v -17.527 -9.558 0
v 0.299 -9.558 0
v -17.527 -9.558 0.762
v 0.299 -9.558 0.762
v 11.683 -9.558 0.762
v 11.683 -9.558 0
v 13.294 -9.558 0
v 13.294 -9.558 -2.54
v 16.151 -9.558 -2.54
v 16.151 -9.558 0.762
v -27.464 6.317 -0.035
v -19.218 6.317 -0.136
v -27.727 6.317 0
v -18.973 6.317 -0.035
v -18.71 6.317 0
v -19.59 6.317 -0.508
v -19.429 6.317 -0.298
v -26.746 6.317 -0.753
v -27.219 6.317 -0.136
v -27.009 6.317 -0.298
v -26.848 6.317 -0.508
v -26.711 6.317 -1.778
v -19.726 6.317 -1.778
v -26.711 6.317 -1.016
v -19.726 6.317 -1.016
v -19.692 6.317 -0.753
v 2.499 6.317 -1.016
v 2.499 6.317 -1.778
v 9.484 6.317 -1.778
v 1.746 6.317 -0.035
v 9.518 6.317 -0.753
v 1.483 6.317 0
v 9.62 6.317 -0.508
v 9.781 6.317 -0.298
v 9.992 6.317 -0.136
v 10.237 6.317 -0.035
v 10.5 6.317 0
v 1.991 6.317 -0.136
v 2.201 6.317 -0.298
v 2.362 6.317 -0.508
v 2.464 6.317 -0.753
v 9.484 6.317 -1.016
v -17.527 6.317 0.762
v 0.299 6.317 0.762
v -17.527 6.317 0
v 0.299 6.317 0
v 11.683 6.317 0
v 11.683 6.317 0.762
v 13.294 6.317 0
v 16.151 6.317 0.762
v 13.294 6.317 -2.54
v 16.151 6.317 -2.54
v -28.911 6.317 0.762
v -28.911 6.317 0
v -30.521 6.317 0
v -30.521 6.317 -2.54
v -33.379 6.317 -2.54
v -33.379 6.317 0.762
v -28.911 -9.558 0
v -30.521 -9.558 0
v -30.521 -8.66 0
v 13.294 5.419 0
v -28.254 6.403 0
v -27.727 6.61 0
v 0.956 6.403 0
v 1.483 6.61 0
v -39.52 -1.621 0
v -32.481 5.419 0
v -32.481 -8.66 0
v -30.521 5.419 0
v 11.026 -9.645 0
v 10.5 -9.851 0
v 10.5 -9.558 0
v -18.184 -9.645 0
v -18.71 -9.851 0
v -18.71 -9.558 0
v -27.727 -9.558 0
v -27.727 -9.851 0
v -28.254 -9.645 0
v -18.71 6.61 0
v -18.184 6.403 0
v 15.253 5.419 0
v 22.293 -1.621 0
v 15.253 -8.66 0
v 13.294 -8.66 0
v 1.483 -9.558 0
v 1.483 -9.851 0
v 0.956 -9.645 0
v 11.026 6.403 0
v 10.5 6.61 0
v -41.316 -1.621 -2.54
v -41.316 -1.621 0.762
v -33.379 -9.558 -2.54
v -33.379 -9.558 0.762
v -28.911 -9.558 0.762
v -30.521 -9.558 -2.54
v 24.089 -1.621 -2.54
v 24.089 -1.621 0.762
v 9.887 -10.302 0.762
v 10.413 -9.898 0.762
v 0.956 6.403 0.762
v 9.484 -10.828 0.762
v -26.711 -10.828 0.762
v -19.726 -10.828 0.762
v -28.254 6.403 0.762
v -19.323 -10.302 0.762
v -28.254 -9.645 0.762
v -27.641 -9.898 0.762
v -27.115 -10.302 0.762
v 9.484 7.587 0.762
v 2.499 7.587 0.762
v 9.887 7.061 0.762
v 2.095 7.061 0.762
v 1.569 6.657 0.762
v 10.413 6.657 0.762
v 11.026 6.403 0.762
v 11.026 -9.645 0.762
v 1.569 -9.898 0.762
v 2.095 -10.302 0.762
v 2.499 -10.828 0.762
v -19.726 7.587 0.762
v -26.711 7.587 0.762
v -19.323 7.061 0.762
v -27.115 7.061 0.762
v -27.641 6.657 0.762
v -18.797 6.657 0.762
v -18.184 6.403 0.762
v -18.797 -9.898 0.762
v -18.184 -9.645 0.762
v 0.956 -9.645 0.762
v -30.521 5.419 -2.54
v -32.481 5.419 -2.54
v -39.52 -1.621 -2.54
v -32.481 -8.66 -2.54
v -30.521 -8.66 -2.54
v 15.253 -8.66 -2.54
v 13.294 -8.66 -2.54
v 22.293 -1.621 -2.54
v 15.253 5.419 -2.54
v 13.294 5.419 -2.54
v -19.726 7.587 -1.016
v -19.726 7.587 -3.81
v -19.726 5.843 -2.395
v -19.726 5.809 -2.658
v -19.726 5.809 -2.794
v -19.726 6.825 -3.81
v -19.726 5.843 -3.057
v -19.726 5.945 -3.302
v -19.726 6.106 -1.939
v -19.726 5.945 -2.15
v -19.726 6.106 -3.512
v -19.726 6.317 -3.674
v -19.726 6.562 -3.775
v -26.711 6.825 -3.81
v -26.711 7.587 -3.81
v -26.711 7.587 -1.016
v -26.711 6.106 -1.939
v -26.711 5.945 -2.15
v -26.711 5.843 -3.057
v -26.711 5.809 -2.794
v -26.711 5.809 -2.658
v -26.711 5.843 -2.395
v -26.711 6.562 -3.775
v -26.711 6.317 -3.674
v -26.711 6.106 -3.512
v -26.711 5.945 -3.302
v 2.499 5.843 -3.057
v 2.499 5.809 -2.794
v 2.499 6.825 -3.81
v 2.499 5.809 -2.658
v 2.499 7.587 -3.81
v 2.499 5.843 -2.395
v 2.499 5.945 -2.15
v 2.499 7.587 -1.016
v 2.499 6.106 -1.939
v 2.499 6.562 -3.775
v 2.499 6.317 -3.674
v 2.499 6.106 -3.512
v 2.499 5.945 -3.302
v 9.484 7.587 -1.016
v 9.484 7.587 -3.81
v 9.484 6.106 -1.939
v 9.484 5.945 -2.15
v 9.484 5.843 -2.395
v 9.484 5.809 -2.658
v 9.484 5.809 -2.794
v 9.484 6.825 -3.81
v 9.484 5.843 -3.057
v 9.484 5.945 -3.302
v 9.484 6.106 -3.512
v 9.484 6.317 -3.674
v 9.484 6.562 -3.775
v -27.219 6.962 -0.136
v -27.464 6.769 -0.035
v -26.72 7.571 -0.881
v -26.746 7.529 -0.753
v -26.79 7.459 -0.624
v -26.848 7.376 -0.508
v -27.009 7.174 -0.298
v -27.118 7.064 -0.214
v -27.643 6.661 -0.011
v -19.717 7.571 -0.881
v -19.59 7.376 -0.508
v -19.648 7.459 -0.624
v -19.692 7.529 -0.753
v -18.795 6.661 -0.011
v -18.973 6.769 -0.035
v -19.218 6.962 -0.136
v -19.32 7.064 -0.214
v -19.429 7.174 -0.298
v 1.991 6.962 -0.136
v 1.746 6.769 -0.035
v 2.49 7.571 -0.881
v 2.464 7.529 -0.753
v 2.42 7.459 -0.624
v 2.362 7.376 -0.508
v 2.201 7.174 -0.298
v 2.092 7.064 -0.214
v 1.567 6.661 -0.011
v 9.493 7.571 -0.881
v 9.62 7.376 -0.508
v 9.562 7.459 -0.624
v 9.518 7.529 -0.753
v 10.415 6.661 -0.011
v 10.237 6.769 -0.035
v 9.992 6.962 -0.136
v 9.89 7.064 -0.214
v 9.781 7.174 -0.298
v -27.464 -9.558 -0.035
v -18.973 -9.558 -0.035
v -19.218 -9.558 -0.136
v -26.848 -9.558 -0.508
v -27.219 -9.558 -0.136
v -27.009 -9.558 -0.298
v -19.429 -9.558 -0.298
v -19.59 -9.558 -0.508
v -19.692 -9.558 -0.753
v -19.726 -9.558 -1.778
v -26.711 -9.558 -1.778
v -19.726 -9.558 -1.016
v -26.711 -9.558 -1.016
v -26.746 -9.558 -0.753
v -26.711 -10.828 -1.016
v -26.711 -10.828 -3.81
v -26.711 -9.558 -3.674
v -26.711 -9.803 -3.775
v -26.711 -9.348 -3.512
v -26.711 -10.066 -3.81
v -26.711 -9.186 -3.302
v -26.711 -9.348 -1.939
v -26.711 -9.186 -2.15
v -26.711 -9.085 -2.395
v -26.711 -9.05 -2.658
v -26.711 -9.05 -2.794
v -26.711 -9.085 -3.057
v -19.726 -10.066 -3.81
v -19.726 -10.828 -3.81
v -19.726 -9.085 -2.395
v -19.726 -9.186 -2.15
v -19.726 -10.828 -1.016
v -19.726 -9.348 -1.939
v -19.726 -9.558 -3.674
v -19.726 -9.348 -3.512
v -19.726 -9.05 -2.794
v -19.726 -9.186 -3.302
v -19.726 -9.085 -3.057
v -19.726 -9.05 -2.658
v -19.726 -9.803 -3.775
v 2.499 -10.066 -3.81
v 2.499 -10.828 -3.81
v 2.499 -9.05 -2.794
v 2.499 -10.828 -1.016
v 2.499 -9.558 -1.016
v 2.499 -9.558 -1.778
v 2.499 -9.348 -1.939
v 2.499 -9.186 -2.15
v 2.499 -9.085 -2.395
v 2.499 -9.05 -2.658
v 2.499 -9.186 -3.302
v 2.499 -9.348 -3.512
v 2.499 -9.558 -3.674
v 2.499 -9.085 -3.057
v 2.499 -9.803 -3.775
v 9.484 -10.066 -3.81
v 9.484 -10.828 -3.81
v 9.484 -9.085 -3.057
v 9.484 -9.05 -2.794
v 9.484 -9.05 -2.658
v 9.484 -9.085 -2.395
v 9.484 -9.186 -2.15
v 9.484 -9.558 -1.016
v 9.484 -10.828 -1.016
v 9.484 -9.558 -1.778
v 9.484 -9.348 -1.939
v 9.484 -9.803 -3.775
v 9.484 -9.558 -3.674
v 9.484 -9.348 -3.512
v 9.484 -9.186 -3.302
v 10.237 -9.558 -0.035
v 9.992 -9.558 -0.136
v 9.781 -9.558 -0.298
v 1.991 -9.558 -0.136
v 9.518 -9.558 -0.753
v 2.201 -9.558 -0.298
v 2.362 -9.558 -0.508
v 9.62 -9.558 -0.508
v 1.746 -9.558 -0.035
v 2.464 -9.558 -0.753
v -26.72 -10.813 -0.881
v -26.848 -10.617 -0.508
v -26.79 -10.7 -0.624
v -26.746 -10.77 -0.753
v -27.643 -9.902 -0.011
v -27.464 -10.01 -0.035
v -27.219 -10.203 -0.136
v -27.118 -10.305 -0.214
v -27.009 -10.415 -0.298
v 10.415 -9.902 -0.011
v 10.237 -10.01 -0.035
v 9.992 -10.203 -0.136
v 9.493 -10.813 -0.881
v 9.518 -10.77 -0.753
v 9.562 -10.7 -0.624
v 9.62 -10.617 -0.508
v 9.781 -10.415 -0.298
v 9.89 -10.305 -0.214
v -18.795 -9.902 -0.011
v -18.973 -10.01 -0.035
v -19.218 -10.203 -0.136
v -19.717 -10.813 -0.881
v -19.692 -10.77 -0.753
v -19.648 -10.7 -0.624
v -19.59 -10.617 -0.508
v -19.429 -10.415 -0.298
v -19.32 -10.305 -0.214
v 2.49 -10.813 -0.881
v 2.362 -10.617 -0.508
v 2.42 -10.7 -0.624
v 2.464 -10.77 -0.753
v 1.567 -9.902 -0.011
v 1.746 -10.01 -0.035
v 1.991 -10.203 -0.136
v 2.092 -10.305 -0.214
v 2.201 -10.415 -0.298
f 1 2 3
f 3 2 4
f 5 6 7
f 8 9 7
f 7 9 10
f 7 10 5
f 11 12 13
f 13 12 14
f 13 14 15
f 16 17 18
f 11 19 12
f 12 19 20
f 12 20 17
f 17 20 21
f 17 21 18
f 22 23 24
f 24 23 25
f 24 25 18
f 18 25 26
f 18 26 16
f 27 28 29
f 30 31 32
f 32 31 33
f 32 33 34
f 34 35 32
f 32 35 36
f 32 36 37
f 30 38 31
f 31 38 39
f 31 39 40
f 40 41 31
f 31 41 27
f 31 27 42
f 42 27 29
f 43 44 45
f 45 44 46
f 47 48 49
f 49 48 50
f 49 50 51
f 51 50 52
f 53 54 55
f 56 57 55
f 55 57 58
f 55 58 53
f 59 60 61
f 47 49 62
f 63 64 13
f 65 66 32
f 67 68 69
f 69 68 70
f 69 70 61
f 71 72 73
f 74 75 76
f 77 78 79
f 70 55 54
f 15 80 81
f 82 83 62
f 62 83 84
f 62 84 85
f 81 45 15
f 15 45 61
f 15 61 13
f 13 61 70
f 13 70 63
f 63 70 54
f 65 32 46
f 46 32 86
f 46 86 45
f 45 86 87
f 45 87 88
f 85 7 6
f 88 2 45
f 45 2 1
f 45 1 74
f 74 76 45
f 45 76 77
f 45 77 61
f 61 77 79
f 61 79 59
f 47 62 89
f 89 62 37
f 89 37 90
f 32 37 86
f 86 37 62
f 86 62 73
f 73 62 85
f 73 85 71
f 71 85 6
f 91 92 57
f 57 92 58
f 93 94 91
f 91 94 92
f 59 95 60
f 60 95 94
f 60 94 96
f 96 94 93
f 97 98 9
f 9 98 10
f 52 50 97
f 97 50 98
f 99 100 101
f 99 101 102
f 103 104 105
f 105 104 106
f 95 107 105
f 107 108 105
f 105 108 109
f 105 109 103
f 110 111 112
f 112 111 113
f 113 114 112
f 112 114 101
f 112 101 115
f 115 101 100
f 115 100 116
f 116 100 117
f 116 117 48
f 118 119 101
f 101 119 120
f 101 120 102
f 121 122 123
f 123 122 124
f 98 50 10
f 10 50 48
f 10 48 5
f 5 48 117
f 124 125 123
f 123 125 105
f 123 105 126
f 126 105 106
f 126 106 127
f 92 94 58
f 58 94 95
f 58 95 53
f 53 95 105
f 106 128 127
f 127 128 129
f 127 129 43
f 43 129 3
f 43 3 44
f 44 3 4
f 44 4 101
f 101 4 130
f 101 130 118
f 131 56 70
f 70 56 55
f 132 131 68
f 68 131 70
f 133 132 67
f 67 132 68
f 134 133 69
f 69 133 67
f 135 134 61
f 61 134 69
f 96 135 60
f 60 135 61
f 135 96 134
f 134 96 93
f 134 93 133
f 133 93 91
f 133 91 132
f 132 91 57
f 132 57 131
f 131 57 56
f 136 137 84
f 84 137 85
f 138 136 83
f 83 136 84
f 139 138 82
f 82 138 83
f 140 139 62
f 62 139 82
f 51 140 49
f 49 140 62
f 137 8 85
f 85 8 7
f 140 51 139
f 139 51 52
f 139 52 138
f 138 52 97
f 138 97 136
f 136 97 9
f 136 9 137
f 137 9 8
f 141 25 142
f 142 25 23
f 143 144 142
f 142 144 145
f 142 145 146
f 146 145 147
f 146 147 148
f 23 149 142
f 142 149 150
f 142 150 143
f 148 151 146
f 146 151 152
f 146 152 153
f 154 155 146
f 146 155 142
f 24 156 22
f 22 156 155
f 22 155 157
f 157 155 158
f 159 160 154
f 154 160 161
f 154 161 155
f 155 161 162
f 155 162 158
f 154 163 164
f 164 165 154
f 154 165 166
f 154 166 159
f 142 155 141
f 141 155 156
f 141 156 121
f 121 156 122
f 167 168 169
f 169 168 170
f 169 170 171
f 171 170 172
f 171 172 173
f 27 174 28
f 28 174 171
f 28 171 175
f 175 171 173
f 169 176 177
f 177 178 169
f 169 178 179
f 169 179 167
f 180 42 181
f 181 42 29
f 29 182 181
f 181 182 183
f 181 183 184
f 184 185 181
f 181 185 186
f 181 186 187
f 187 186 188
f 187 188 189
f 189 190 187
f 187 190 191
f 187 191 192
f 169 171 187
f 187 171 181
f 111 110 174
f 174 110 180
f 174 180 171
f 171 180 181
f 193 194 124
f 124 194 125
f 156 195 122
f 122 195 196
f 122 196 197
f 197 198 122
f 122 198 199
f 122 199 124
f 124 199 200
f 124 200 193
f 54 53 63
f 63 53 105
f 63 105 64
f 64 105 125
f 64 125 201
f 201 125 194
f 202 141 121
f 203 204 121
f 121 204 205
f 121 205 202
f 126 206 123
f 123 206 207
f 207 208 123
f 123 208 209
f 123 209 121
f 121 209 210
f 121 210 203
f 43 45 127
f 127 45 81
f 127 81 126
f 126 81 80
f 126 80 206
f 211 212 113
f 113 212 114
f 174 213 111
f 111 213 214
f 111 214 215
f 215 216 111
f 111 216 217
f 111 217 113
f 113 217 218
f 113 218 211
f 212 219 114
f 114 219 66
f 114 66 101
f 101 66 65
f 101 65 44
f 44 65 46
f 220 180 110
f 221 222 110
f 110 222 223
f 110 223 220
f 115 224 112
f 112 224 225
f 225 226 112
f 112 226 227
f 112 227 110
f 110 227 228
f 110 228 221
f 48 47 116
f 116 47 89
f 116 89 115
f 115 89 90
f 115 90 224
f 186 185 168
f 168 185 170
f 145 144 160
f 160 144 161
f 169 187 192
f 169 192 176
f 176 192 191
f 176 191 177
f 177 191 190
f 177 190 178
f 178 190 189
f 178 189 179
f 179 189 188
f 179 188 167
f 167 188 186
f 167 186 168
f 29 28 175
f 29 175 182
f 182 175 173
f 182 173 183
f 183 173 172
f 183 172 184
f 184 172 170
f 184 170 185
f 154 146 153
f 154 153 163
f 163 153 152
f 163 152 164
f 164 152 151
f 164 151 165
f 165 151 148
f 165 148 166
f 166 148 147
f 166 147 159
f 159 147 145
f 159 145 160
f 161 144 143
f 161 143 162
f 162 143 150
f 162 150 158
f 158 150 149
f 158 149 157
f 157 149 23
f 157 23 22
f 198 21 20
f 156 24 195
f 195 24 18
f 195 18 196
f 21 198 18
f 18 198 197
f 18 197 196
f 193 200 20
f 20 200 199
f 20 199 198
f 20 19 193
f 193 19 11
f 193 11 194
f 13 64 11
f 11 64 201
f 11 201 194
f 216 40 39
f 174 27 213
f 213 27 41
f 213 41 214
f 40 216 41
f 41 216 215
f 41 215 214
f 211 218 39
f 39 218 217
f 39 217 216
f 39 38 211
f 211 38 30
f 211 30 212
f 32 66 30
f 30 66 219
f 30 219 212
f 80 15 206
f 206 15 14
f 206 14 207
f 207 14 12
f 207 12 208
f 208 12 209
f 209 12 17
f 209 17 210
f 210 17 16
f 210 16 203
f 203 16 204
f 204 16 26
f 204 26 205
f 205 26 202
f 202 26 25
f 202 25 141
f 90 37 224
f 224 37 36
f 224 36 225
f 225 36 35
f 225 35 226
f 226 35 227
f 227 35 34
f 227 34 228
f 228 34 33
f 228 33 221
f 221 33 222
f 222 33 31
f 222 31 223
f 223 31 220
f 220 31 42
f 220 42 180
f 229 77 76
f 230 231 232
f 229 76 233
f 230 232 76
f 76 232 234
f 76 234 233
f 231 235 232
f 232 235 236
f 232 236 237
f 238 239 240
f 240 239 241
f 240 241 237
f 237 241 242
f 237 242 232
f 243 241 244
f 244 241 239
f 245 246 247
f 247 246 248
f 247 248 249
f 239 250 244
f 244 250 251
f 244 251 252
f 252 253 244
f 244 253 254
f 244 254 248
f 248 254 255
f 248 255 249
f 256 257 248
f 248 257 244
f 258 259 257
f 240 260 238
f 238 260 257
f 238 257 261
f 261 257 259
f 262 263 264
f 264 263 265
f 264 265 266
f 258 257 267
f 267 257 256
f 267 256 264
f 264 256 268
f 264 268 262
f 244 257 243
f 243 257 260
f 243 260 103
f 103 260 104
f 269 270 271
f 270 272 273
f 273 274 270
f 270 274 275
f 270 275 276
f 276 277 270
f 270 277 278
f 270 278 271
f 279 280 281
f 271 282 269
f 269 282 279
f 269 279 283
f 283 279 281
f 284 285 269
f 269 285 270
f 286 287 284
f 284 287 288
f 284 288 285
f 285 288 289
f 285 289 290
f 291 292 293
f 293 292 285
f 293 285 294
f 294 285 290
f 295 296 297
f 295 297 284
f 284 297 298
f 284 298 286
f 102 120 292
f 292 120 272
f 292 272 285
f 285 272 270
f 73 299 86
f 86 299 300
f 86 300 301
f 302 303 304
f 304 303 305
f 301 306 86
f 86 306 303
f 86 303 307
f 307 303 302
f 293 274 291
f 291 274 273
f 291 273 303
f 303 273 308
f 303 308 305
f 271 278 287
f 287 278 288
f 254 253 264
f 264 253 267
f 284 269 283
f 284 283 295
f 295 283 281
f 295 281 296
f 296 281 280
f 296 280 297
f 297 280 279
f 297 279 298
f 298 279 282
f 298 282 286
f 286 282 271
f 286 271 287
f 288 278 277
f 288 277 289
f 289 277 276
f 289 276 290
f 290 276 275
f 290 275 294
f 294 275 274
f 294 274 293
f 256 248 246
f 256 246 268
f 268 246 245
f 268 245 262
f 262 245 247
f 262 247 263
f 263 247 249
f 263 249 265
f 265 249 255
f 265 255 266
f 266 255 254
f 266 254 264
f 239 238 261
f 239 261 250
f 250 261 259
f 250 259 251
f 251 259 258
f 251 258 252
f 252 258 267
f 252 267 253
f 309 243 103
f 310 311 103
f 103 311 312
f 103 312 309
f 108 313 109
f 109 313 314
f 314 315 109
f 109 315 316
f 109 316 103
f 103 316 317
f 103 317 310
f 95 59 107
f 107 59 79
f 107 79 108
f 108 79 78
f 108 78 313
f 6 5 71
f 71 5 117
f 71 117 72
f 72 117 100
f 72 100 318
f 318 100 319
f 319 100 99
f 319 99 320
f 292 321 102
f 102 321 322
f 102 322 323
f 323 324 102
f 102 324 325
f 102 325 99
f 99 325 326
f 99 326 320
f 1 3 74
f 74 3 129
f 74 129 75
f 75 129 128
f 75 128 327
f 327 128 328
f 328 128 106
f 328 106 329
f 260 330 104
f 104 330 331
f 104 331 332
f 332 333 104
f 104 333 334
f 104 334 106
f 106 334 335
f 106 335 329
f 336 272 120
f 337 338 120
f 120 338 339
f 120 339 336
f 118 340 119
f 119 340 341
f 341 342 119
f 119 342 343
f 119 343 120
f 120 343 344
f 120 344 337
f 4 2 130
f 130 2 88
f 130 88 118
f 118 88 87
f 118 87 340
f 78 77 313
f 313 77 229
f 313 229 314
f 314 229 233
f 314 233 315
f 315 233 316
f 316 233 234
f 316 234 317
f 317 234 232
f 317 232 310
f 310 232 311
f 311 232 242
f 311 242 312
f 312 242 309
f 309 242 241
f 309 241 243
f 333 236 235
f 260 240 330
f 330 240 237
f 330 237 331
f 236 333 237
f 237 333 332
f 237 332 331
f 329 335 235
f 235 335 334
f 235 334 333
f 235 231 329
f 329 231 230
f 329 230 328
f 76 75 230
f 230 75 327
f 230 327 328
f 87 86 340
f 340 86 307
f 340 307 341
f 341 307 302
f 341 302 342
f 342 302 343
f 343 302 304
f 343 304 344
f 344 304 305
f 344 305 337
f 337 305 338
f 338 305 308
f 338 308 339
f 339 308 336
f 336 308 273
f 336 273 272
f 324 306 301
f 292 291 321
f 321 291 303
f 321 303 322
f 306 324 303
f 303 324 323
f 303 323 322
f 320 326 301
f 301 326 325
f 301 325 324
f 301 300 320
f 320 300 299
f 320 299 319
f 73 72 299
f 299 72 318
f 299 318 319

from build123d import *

# Parameters (mm, degrees)
BOSS_EXTRUDE1_DEPTH  = 0.762
BOSS_EXTRUDE2_DEPTH  = 2.54
SKETCH4_W            = 6.985
SKETCH4_H            = 4.572
BOSS_EXTRUDE3_DEPTH  = 1.27
FILLET1_R            = 2.54
SKETCH5_W            = 6.985
SKETCH5_H            = 2.032
BOSS_EXTRUDE4_DEPTH  = 0.508
FILLET2_R            = 1.016
FILLET3_R            = 1.016
FILLET2_OF_MIRROR4_R = 1.016
FILLET4_R            = 2.54
FILLET5_R            = 1.016


with BuildPart() as part:
    # Sketch1 → Boss-Extrude1 (new body)
    with BuildSketch(Plane.XY):
        Polygon((-33.378913043, 6.316869565), (16.151086957, 6.316869565), (24.088586957, -1.620630435), (16.151086957, -9.558130435), (-33.378913043, -9.558130435), (-41.316413043, -1.620630435), align=None)
    extrude(amount=BOSS_EXTRUDE1_DEPTH)

    # Sketch2 → Boss-Extrude2 (add)
    with BuildSketch(Plane(origin=(0, 0, 0), x_dir=(-1, 0, 0), z_dir=(0, 0, -1))):
        Polygon((30.521413043, 6.316869565), (33.378913043, 6.316869565), (41.316413043, -1.620630435), (33.378913043, -9.558130435), (30.521413043, -9.558130435), (30.521413043, -8.660104823), (32.480887431, -8.660104823), (39.520361819, -1.620630435), (32.480887431, 5.418843953), (30.521413043, 5.418843953), align=None)
        Polygon((-16.151086957, -9.558130435), (-24.088586957, -1.620630435), (-16.151086957, 6.316869565), (-13.293586957, 6.316869565), (-13.293586957, 5.418843953), (-15.253061344, 5.418843953), (-22.292535732, -1.620630435), (-15.253061344, -8.660104823), (-13.293586957, -8.660104823), (-13.293586957, -9.558130435), align=None)
    extrude(amount=BOSS_EXTRUDE2_DEPTH)

    # Sketch4 → Boss-Extrude3 (add)
    with BuildSketch(Plane(origin=(0, 6.316869565, 0), x_dir=(1, 0, 0), z_dir=(0, 1, 0))):
        with Locations((5.991086957, 1.524)):
            Rectangle(SKETCH4_W, SKETCH4_H)
        with Locations((-23.218913043, 1.524)):
            Rectangle(SKETCH4_W, SKETCH4_H)
    boss_extrude3 = extrude(amount=BOSS_EXTRUDE3_DEPTH)

    # Fillet1
    # the kernel refuses this fillet: 2.54 mm, written as the material it adds along each edge
    with BuildSketch(Plane(origin=(-26.711413043, 6.316869565, 0.762), x_dir=(-1, 0, 0), z_dir=(0, 0, -1)), Plane(origin=(-19.726413043, 6.316869565, 0), x_dir=(1, 0, 0), z_dir=(0, 0, 1)), Plane(origin=(2.498586957, 6.316869565, 0.762), x_dir=(-1, 0, 0), z_dir=(0, 0, -1)), Plane(origin=(9.483586957, 6.316869565, 0), x_dir=(1, 0, 0), z_dir=(0, 0, 1))) as fillet1_piece_1:
        with BuildLine():
            CenterArc((2.199704526, 2.54), FILLET1_R, 210, 60)
            Line((0, 1.27), (0, 0))
            Line((0, 0), (2.199704526, 0))
        make_face()
    extrude(amount=0.762)

    # Sketch5 → Boss-Extrude4 (add)
    with BuildSketch(Plane.XZ.offset(-6.316869565)):
        with Locations((5.991086957, -2.794)):
            Rectangle(SKETCH5_W, SKETCH5_H)
        with Locations((-23.218913043, -2.794)):
            Rectangle(SKETCH5_W, SKETCH5_H)
    boss_extrude4 = extrude(amount=BOSS_EXTRUDE4_DEPTH)

    # Fillet2
    # the kernel refuses this fillet: 1.016 mm, written as the material it takes off along each edge
    with BuildSketch(Plane(origin=(-0.041413043, 5.808869565, -3.81), x_dir=(0, 1, 0), z_dir=(1, 0, 0))) as fillet2_piece_1:
        with BuildLine():
            CenterArc((FILLET2_R, FILLET2_R), FILLET2_R, 180, 90)
            Line((0, FILLET2_R), (-FILLET2_R * 0.02, FILLET2_R))
            Line((-FILLET2_R * 0.02, FILLET2_R), (-FILLET2_R * 0.02, -FILLET2_R * 0.02))
            Line((-FILLET2_R * 0.02, -FILLET2_R * 0.02), (FILLET2_R, -FILLET2_R * 0.02))
            Line((FILLET2_R, -FILLET2_R * 0.02), (FILLET2_R, 0))
        make_face()
    extrude(amount=12.065, mode=Mode.SUBTRACT)
    with BuildSketch(Plane(origin=(11.683291482, 5.808869565, -1.778), x_dir=(0, 0, -1), z_dir=(-1, 0, 0))) as fillet2_piece_2:
        with BuildLine():
            CenterArc((0.87988181, -1.016), FILLET2_R, 90, 60)
            Line((0, -0.508), (-0.017597636, -0.49784))
            ThreePointArc((-0.017597636, -0.49784), (-0.02032, -0.254), (-0.02032, 0))
            Line((-0.02032, 0), (0, 0.02032))
            Line((0, 0.02032), (0.87988181, 0.02032))
            Line((0.87988181, 0.02032), (0.87988181, 0))
        make_face()
    extrude(amount=11.384409051, mode=Mode.SUBTRACT)
    with BuildSketch(Plane(origin=(-29.251413043, 5.808869565, -3.81), x_dir=(0, 0, 1), z_dir=(1, 0, 0))) as fillet2_piece_3:
        with BuildLine():
            CenterArc((FILLET2_R, -FILLET2_R), FILLET2_R, 90, 90)
            Line((0, -FILLET2_R), (-FILLET2_R * 0.02, -FILLET2_R))
            Line((-FILLET2_R * 0.02, -FILLET2_R), (-FILLET2_R * 0.02, FILLET2_R * 0.02))
            Line((-FILLET2_R * 0.02, FILLET2_R * 0.02), (FILLET2_R, FILLET2_R * 0.02))
            Line((FILLET2_R, FILLET2_R * 0.02), (FILLET2_R, 0))
        make_face()
    extrude(amount=12.065, mode=Mode.SUBTRACT)
    with BuildSketch(Plane(origin=(-17.526708518, 5.808869565, -1.778), x_dir=(0, 1, 0), z_dir=(-1, 0, 0))) as fillet2_piece_4:
        with BuildLine():
            CenterArc((1.016, 0.87988181), FILLET2_R, 180, 60)
            Line((0, 0.87988181), (-0.02032, 0.87988181))
            Line((-0.02032, 0.87988181), (-0.02032, 0))
            Line((-0.02032, 0), (0, -0.02032))
            ThreePointArc((0, -0.02032), (0.254, -0.02032), (0.49784, -0.017597636))
            Line((0.49784, -0.017597636), (0.508, 0))
        make_face()
    extrude(amount=11.384409051, mode=Mode.SUBTRACT)

    # Fillet3
    # the kernel refuses this fillet: 1.016 mm, written as the material it adds along each edge
    with BuildSketch(Plane(origin=(-26.711413043, 10.126869565, 0), x_dir=(-1, 0, 0), z_dir=(0, -1, 0))) as fillet3_piece_1_section:
        with BuildLine():
            CenterArc((FILLET3_R, FILLET3_R), FILLET3_R, 180, 90)
            Line((0, FILLET3_R), (0, 0))
            Line((0, 0), (FILLET3_R, 0))
        make_face()
    fillet3_piece_1 = extrude(amount=3.81, mode=Mode.PRIVATE)
    fillet3_piece_1 = fillet3_piece_1 - Plane(origin=(-28.911117569, 8.856869565, 0), x_dir=(-1, 0, 0), z_dir=(0, 0, 1)) * Cylinder(2.54, 12, mode=Mode.PRIVATE)
    add(fillet3_piece_1)
    with BuildSketch(Plane(origin=(-19.726413043, 10.126869565, 0), x_dir=(1, 0, 0), z_dir=(0, -1, 0))) as fillet3_piece_2_section:
        with BuildLine():
            CenterArc((FILLET3_R, -FILLET3_R), FILLET3_R, 90, 90)
            Line((0, -FILLET3_R), (0, 0))
            Line((0, 0), (FILLET3_R, 0))
        make_face()
    fillet3_piece_2 = extrude(amount=3.81, mode=Mode.PRIVATE)
    fillet3_piece_2 = fillet3_piece_2 - Plane(origin=(-17.526708518, 8.856869565, 0), x_dir=(1, 0, 0), z_dir=(0, 0, -1)) * Cylinder(2.54, 12, mode=Mode.PRIVATE)
    add(fillet3_piece_2)
    with BuildSketch(Plane(origin=(2.498586957, 10.126869565, 0), x_dir=(-1, 0, 0), z_dir=(0, -1, 0))) as fillet3_piece_3_section:
        with BuildLine():
            CenterArc((FILLET3_R, FILLET3_R), FILLET3_R, 180, 90)
            Line((0, FILLET3_R), (0, 0))
            Line((0, 0), (FILLET3_R, 0))
        make_face()
    fillet3_piece_3 = extrude(amount=3.81, mode=Mode.PRIVATE)
    fillet3_piece_3 = fillet3_piece_3 - Plane(origin=(0.298882431, 8.856869565, 0), x_dir=(-1, 0, 0), z_dir=(0, 0, 1)) * Cylinder(2.54, 12, mode=Mode.PRIVATE)
    add(fillet3_piece_3)
    with BuildSketch(Plane(origin=(9.483586957, 10.126869565, 0), x_dir=(1, 0, 0), z_dir=(0, -1, 0))) as fillet3_piece_4_section:
        with BuildLine():
            CenterArc((FILLET3_R, -FILLET3_R), FILLET3_R, 90, 90)
            Line((0, -FILLET3_R), (0, 0))
            Line((0, 0), (FILLET3_R, 0))
        make_face()
    fillet3_piece_4 = extrude(amount=3.81, mode=Mode.PRIVATE)
    fillet3_piece_4 = fillet3_piece_4 - Plane(origin=(11.683291482, 8.856869565, 0), x_dir=(1, 0, 0), z_dir=(0, 0, -1)) * Cylinder(2.54, 12, mode=Mode.PRIVATE)
    add(fillet3_piece_4)

    # Mirror4: Boss-Extrude3, Boss-Extrude4 across plane
    add(boss_extrude3.mirror(Plane.ZX.offset(-1.620630435)))
    add(boss_extrude4.mirror(Plane.ZX.offset(-1.620630435)))

    # Fillet2 of Mirror4
    # the kernel refuses this fillet: 1.016 mm, written as the material it takes off along each edge
    with BuildSketch(Plane(origin=(-0.041413043, -9.050130435, -3.81), x_dir=(0, 0, 1), z_dir=(1, 0, 0)), Plane(origin=(-29.251413043, -9.050130435, -3.81), x_dir=(0, 0, 1), z_dir=(1, 0, 0))) as fillet2_of_mirror4_piece_1:
        with BuildLine():
            CenterArc((FILLET2_OF_MIRROR4_R, FILLET2_OF_MIRROR4_R), FILLET2_OF_MIRROR4_R, 180, 90)
            Line((0, FILLET2_OF_MIRROR4_R), (-FILLET2_OF_MIRROR4_R * 0.02, FILLET2_OF_MIRROR4_R))
            Line((-FILLET2_OF_MIRROR4_R * 0.02, FILLET2_OF_MIRROR4_R), (-FILLET2_OF_MIRROR4_R * 0.02, -FILLET2_OF_MIRROR4_R * 0.02))
            Line((-FILLET2_OF_MIRROR4_R * 0.02, -FILLET2_OF_MIRROR4_R * 0.02), (FILLET2_OF_MIRROR4_R, -FILLET2_OF_MIRROR4_R * 0.02))
            Line((FILLET2_OF_MIRROR4_R, -FILLET2_OF_MIRROR4_R * 0.02), (FILLET2_OF_MIRROR4_R, 0))
        make_face()
    extrude(amount=12.065, mode=Mode.SUBTRACT)
    with BuildSketch(Plane(origin=(11.683291482, -9.050130435, -1.778), x_dir=(0, 0, -1), z_dir=(-1, 0, 0)), Plane(origin=(-17.526708518, -9.050130435, -1.778), x_dir=(0, 0, -1), z_dir=(-1, 0, 0))) as fillet2_of_mirror4_piece_2:
        with BuildLine():
            CenterArc((0.87988181, 1.016), FILLET2_OF_MIRROR4_R, 210, 60)
            Line((0, 0.508), (-0.017597636, 0.49784))
            ThreePointArc((-0.017597636, 0.49784), (-0.02032, 0.254), (-0.02032, 0))
            Line((-0.02032, 0), (0, -0.02032))
            Line((0, -0.02032), (0.87988181, -0.02032))
            Line((0.87988181, -0.02032), (0.87988181, 0))
        make_face()
    extrude(amount=11.384409051, mode=Mode.SUBTRACT)

    # Fillet4
    # the kernel refuses this fillet: 2.54 mm, written as the material it adds along each edge
    with BuildSketch(Plane(origin=(-26.711413043, -9.558130435, 0.762), x_dir=(-1, 0, 0), z_dir=(0, 0, -1)), Plane(origin=(-19.726413043, -9.558130435, 0), x_dir=(1, 0, 0), z_dir=(0, 0, 1)), Plane(origin=(2.498586957, -9.558130435, 0.762), x_dir=(-1, 0, 0), z_dir=(0, 0, -1)), Plane(origin=(9.483586957, -9.558130435, 0), x_dir=(1, 0, 0), z_dir=(0, 0, 1))) as fillet4_piece_1:
        with BuildLine():
            CenterArc((2.199704526, -2.54), FILLET4_R, 90, 60)
            Line((0, -1.27), (0, 0))
            Line((0, 0), (2.199704526, 0))
        make_face()
    extrude(amount=0.762)

    # Fillet5
    # the kernel refuses this fillet: 1.016 mm, written as the material it adds along each edge
    with BuildSketch(Plane(origin=(-26.711413043, -13.368130435, 0), x_dir=(-1, 0, 0), z_dir=(0, 1, 0))) as fillet5_piece_1_section:
        with BuildLine():
            CenterArc((FILLET5_R, -FILLET5_R), FILLET5_R, 90, 90)
            Line((0, -FILLET5_R), (0, 0))
            Line((0, 0), (FILLET5_R, 0))
        make_face()
    fillet5_piece_1 = extrude(amount=3.81, mode=Mode.PRIVATE)
    fillet5_piece_1 = fillet5_piece_1 - Plane(origin=(-28.911117569, -12.098130435, 0), x_dir=(-1, 0, 0), z_dir=(0, 0, 1)) * Cylinder(2.54, 12, mode=Mode.PRIVATE)
    add(fillet5_piece_1)
    with BuildSketch(Plane(origin=(9.483586957, -13.368130435, 0), x_dir=(1, 0, 0), z_dir=(0, 1, 0))) as fillet5_piece_2_section:
        with BuildLine():
            CenterArc((FILLET5_R, FILLET5_R), FILLET5_R, 180, 90)
            Line((0, FILLET5_R), (0, 0))
            Line((0, 0), (FILLET5_R, 0))
        make_face()
    fillet5_piece_2 = extrude(amount=3.81, mode=Mode.PRIVATE)
    fillet5_piece_2 = fillet5_piece_2 - Plane(origin=(11.683291482, -12.098130435, 0), x_dir=(1, 0, 0), z_dir=(0, 0, -1)) * Cylinder(2.54, 12, mode=Mode.PRIVATE)
    add(fillet5_piece_2)
    with BuildSketch(Plane(origin=(-19.726413043, -13.368130435, 0), x_dir=(1, 0, 0), z_dir=(0, 1, 0))) as fillet5_piece_3_section:
        with BuildLine():
            CenterArc((FILLET5_R, FILLET5_R), FILLET5_R, 180, 90)
            Line((0, FILLET5_R), (0, 0))
            Line((0, 0), (FILLET5_R, 0))
        make_face()
    fillet5_piece_3 = extrude(amount=3.81, mode=Mode.PRIVATE)
    fillet5_piece_3 = fillet5_piece_3 - Plane(origin=(-17.526708518, -12.098130435, 0), x_dir=(1, 0, 0), z_dir=(0, 0, -1)) * Cylinder(2.54, 12, mode=Mode.PRIVATE)
    add(fillet5_piece_3)
    with BuildSketch(Plane(origin=(2.498586957, -13.368130435, 0), x_dir=(-1, 0, 0), z_dir=(0, 1, 0))) as fillet5_piece_4_section:
        with BuildLine():
            CenterArc((FILLET5_R, -FILLET5_R), FILLET5_R, 90, 90)
            Line((0, -FILLET5_R), (0, 0))
            Line((0, 0), (FILLET5_R, 0))
        make_face()
    fillet5_piece_4 = extrude(amount=3.81, mode=Mode.PRIVATE)
    fillet5_piece_4 = fillet5_piece_4 - Plane(origin=(0.298882431, -12.098130435, 0), x_dir=(-1, 0, 0), z_dir=(0, 0, 1)) * Cylinder(2.54, 12, mode=Mode.PRIVATE)
    add(fillet5_piece_4)


solid = part.part
